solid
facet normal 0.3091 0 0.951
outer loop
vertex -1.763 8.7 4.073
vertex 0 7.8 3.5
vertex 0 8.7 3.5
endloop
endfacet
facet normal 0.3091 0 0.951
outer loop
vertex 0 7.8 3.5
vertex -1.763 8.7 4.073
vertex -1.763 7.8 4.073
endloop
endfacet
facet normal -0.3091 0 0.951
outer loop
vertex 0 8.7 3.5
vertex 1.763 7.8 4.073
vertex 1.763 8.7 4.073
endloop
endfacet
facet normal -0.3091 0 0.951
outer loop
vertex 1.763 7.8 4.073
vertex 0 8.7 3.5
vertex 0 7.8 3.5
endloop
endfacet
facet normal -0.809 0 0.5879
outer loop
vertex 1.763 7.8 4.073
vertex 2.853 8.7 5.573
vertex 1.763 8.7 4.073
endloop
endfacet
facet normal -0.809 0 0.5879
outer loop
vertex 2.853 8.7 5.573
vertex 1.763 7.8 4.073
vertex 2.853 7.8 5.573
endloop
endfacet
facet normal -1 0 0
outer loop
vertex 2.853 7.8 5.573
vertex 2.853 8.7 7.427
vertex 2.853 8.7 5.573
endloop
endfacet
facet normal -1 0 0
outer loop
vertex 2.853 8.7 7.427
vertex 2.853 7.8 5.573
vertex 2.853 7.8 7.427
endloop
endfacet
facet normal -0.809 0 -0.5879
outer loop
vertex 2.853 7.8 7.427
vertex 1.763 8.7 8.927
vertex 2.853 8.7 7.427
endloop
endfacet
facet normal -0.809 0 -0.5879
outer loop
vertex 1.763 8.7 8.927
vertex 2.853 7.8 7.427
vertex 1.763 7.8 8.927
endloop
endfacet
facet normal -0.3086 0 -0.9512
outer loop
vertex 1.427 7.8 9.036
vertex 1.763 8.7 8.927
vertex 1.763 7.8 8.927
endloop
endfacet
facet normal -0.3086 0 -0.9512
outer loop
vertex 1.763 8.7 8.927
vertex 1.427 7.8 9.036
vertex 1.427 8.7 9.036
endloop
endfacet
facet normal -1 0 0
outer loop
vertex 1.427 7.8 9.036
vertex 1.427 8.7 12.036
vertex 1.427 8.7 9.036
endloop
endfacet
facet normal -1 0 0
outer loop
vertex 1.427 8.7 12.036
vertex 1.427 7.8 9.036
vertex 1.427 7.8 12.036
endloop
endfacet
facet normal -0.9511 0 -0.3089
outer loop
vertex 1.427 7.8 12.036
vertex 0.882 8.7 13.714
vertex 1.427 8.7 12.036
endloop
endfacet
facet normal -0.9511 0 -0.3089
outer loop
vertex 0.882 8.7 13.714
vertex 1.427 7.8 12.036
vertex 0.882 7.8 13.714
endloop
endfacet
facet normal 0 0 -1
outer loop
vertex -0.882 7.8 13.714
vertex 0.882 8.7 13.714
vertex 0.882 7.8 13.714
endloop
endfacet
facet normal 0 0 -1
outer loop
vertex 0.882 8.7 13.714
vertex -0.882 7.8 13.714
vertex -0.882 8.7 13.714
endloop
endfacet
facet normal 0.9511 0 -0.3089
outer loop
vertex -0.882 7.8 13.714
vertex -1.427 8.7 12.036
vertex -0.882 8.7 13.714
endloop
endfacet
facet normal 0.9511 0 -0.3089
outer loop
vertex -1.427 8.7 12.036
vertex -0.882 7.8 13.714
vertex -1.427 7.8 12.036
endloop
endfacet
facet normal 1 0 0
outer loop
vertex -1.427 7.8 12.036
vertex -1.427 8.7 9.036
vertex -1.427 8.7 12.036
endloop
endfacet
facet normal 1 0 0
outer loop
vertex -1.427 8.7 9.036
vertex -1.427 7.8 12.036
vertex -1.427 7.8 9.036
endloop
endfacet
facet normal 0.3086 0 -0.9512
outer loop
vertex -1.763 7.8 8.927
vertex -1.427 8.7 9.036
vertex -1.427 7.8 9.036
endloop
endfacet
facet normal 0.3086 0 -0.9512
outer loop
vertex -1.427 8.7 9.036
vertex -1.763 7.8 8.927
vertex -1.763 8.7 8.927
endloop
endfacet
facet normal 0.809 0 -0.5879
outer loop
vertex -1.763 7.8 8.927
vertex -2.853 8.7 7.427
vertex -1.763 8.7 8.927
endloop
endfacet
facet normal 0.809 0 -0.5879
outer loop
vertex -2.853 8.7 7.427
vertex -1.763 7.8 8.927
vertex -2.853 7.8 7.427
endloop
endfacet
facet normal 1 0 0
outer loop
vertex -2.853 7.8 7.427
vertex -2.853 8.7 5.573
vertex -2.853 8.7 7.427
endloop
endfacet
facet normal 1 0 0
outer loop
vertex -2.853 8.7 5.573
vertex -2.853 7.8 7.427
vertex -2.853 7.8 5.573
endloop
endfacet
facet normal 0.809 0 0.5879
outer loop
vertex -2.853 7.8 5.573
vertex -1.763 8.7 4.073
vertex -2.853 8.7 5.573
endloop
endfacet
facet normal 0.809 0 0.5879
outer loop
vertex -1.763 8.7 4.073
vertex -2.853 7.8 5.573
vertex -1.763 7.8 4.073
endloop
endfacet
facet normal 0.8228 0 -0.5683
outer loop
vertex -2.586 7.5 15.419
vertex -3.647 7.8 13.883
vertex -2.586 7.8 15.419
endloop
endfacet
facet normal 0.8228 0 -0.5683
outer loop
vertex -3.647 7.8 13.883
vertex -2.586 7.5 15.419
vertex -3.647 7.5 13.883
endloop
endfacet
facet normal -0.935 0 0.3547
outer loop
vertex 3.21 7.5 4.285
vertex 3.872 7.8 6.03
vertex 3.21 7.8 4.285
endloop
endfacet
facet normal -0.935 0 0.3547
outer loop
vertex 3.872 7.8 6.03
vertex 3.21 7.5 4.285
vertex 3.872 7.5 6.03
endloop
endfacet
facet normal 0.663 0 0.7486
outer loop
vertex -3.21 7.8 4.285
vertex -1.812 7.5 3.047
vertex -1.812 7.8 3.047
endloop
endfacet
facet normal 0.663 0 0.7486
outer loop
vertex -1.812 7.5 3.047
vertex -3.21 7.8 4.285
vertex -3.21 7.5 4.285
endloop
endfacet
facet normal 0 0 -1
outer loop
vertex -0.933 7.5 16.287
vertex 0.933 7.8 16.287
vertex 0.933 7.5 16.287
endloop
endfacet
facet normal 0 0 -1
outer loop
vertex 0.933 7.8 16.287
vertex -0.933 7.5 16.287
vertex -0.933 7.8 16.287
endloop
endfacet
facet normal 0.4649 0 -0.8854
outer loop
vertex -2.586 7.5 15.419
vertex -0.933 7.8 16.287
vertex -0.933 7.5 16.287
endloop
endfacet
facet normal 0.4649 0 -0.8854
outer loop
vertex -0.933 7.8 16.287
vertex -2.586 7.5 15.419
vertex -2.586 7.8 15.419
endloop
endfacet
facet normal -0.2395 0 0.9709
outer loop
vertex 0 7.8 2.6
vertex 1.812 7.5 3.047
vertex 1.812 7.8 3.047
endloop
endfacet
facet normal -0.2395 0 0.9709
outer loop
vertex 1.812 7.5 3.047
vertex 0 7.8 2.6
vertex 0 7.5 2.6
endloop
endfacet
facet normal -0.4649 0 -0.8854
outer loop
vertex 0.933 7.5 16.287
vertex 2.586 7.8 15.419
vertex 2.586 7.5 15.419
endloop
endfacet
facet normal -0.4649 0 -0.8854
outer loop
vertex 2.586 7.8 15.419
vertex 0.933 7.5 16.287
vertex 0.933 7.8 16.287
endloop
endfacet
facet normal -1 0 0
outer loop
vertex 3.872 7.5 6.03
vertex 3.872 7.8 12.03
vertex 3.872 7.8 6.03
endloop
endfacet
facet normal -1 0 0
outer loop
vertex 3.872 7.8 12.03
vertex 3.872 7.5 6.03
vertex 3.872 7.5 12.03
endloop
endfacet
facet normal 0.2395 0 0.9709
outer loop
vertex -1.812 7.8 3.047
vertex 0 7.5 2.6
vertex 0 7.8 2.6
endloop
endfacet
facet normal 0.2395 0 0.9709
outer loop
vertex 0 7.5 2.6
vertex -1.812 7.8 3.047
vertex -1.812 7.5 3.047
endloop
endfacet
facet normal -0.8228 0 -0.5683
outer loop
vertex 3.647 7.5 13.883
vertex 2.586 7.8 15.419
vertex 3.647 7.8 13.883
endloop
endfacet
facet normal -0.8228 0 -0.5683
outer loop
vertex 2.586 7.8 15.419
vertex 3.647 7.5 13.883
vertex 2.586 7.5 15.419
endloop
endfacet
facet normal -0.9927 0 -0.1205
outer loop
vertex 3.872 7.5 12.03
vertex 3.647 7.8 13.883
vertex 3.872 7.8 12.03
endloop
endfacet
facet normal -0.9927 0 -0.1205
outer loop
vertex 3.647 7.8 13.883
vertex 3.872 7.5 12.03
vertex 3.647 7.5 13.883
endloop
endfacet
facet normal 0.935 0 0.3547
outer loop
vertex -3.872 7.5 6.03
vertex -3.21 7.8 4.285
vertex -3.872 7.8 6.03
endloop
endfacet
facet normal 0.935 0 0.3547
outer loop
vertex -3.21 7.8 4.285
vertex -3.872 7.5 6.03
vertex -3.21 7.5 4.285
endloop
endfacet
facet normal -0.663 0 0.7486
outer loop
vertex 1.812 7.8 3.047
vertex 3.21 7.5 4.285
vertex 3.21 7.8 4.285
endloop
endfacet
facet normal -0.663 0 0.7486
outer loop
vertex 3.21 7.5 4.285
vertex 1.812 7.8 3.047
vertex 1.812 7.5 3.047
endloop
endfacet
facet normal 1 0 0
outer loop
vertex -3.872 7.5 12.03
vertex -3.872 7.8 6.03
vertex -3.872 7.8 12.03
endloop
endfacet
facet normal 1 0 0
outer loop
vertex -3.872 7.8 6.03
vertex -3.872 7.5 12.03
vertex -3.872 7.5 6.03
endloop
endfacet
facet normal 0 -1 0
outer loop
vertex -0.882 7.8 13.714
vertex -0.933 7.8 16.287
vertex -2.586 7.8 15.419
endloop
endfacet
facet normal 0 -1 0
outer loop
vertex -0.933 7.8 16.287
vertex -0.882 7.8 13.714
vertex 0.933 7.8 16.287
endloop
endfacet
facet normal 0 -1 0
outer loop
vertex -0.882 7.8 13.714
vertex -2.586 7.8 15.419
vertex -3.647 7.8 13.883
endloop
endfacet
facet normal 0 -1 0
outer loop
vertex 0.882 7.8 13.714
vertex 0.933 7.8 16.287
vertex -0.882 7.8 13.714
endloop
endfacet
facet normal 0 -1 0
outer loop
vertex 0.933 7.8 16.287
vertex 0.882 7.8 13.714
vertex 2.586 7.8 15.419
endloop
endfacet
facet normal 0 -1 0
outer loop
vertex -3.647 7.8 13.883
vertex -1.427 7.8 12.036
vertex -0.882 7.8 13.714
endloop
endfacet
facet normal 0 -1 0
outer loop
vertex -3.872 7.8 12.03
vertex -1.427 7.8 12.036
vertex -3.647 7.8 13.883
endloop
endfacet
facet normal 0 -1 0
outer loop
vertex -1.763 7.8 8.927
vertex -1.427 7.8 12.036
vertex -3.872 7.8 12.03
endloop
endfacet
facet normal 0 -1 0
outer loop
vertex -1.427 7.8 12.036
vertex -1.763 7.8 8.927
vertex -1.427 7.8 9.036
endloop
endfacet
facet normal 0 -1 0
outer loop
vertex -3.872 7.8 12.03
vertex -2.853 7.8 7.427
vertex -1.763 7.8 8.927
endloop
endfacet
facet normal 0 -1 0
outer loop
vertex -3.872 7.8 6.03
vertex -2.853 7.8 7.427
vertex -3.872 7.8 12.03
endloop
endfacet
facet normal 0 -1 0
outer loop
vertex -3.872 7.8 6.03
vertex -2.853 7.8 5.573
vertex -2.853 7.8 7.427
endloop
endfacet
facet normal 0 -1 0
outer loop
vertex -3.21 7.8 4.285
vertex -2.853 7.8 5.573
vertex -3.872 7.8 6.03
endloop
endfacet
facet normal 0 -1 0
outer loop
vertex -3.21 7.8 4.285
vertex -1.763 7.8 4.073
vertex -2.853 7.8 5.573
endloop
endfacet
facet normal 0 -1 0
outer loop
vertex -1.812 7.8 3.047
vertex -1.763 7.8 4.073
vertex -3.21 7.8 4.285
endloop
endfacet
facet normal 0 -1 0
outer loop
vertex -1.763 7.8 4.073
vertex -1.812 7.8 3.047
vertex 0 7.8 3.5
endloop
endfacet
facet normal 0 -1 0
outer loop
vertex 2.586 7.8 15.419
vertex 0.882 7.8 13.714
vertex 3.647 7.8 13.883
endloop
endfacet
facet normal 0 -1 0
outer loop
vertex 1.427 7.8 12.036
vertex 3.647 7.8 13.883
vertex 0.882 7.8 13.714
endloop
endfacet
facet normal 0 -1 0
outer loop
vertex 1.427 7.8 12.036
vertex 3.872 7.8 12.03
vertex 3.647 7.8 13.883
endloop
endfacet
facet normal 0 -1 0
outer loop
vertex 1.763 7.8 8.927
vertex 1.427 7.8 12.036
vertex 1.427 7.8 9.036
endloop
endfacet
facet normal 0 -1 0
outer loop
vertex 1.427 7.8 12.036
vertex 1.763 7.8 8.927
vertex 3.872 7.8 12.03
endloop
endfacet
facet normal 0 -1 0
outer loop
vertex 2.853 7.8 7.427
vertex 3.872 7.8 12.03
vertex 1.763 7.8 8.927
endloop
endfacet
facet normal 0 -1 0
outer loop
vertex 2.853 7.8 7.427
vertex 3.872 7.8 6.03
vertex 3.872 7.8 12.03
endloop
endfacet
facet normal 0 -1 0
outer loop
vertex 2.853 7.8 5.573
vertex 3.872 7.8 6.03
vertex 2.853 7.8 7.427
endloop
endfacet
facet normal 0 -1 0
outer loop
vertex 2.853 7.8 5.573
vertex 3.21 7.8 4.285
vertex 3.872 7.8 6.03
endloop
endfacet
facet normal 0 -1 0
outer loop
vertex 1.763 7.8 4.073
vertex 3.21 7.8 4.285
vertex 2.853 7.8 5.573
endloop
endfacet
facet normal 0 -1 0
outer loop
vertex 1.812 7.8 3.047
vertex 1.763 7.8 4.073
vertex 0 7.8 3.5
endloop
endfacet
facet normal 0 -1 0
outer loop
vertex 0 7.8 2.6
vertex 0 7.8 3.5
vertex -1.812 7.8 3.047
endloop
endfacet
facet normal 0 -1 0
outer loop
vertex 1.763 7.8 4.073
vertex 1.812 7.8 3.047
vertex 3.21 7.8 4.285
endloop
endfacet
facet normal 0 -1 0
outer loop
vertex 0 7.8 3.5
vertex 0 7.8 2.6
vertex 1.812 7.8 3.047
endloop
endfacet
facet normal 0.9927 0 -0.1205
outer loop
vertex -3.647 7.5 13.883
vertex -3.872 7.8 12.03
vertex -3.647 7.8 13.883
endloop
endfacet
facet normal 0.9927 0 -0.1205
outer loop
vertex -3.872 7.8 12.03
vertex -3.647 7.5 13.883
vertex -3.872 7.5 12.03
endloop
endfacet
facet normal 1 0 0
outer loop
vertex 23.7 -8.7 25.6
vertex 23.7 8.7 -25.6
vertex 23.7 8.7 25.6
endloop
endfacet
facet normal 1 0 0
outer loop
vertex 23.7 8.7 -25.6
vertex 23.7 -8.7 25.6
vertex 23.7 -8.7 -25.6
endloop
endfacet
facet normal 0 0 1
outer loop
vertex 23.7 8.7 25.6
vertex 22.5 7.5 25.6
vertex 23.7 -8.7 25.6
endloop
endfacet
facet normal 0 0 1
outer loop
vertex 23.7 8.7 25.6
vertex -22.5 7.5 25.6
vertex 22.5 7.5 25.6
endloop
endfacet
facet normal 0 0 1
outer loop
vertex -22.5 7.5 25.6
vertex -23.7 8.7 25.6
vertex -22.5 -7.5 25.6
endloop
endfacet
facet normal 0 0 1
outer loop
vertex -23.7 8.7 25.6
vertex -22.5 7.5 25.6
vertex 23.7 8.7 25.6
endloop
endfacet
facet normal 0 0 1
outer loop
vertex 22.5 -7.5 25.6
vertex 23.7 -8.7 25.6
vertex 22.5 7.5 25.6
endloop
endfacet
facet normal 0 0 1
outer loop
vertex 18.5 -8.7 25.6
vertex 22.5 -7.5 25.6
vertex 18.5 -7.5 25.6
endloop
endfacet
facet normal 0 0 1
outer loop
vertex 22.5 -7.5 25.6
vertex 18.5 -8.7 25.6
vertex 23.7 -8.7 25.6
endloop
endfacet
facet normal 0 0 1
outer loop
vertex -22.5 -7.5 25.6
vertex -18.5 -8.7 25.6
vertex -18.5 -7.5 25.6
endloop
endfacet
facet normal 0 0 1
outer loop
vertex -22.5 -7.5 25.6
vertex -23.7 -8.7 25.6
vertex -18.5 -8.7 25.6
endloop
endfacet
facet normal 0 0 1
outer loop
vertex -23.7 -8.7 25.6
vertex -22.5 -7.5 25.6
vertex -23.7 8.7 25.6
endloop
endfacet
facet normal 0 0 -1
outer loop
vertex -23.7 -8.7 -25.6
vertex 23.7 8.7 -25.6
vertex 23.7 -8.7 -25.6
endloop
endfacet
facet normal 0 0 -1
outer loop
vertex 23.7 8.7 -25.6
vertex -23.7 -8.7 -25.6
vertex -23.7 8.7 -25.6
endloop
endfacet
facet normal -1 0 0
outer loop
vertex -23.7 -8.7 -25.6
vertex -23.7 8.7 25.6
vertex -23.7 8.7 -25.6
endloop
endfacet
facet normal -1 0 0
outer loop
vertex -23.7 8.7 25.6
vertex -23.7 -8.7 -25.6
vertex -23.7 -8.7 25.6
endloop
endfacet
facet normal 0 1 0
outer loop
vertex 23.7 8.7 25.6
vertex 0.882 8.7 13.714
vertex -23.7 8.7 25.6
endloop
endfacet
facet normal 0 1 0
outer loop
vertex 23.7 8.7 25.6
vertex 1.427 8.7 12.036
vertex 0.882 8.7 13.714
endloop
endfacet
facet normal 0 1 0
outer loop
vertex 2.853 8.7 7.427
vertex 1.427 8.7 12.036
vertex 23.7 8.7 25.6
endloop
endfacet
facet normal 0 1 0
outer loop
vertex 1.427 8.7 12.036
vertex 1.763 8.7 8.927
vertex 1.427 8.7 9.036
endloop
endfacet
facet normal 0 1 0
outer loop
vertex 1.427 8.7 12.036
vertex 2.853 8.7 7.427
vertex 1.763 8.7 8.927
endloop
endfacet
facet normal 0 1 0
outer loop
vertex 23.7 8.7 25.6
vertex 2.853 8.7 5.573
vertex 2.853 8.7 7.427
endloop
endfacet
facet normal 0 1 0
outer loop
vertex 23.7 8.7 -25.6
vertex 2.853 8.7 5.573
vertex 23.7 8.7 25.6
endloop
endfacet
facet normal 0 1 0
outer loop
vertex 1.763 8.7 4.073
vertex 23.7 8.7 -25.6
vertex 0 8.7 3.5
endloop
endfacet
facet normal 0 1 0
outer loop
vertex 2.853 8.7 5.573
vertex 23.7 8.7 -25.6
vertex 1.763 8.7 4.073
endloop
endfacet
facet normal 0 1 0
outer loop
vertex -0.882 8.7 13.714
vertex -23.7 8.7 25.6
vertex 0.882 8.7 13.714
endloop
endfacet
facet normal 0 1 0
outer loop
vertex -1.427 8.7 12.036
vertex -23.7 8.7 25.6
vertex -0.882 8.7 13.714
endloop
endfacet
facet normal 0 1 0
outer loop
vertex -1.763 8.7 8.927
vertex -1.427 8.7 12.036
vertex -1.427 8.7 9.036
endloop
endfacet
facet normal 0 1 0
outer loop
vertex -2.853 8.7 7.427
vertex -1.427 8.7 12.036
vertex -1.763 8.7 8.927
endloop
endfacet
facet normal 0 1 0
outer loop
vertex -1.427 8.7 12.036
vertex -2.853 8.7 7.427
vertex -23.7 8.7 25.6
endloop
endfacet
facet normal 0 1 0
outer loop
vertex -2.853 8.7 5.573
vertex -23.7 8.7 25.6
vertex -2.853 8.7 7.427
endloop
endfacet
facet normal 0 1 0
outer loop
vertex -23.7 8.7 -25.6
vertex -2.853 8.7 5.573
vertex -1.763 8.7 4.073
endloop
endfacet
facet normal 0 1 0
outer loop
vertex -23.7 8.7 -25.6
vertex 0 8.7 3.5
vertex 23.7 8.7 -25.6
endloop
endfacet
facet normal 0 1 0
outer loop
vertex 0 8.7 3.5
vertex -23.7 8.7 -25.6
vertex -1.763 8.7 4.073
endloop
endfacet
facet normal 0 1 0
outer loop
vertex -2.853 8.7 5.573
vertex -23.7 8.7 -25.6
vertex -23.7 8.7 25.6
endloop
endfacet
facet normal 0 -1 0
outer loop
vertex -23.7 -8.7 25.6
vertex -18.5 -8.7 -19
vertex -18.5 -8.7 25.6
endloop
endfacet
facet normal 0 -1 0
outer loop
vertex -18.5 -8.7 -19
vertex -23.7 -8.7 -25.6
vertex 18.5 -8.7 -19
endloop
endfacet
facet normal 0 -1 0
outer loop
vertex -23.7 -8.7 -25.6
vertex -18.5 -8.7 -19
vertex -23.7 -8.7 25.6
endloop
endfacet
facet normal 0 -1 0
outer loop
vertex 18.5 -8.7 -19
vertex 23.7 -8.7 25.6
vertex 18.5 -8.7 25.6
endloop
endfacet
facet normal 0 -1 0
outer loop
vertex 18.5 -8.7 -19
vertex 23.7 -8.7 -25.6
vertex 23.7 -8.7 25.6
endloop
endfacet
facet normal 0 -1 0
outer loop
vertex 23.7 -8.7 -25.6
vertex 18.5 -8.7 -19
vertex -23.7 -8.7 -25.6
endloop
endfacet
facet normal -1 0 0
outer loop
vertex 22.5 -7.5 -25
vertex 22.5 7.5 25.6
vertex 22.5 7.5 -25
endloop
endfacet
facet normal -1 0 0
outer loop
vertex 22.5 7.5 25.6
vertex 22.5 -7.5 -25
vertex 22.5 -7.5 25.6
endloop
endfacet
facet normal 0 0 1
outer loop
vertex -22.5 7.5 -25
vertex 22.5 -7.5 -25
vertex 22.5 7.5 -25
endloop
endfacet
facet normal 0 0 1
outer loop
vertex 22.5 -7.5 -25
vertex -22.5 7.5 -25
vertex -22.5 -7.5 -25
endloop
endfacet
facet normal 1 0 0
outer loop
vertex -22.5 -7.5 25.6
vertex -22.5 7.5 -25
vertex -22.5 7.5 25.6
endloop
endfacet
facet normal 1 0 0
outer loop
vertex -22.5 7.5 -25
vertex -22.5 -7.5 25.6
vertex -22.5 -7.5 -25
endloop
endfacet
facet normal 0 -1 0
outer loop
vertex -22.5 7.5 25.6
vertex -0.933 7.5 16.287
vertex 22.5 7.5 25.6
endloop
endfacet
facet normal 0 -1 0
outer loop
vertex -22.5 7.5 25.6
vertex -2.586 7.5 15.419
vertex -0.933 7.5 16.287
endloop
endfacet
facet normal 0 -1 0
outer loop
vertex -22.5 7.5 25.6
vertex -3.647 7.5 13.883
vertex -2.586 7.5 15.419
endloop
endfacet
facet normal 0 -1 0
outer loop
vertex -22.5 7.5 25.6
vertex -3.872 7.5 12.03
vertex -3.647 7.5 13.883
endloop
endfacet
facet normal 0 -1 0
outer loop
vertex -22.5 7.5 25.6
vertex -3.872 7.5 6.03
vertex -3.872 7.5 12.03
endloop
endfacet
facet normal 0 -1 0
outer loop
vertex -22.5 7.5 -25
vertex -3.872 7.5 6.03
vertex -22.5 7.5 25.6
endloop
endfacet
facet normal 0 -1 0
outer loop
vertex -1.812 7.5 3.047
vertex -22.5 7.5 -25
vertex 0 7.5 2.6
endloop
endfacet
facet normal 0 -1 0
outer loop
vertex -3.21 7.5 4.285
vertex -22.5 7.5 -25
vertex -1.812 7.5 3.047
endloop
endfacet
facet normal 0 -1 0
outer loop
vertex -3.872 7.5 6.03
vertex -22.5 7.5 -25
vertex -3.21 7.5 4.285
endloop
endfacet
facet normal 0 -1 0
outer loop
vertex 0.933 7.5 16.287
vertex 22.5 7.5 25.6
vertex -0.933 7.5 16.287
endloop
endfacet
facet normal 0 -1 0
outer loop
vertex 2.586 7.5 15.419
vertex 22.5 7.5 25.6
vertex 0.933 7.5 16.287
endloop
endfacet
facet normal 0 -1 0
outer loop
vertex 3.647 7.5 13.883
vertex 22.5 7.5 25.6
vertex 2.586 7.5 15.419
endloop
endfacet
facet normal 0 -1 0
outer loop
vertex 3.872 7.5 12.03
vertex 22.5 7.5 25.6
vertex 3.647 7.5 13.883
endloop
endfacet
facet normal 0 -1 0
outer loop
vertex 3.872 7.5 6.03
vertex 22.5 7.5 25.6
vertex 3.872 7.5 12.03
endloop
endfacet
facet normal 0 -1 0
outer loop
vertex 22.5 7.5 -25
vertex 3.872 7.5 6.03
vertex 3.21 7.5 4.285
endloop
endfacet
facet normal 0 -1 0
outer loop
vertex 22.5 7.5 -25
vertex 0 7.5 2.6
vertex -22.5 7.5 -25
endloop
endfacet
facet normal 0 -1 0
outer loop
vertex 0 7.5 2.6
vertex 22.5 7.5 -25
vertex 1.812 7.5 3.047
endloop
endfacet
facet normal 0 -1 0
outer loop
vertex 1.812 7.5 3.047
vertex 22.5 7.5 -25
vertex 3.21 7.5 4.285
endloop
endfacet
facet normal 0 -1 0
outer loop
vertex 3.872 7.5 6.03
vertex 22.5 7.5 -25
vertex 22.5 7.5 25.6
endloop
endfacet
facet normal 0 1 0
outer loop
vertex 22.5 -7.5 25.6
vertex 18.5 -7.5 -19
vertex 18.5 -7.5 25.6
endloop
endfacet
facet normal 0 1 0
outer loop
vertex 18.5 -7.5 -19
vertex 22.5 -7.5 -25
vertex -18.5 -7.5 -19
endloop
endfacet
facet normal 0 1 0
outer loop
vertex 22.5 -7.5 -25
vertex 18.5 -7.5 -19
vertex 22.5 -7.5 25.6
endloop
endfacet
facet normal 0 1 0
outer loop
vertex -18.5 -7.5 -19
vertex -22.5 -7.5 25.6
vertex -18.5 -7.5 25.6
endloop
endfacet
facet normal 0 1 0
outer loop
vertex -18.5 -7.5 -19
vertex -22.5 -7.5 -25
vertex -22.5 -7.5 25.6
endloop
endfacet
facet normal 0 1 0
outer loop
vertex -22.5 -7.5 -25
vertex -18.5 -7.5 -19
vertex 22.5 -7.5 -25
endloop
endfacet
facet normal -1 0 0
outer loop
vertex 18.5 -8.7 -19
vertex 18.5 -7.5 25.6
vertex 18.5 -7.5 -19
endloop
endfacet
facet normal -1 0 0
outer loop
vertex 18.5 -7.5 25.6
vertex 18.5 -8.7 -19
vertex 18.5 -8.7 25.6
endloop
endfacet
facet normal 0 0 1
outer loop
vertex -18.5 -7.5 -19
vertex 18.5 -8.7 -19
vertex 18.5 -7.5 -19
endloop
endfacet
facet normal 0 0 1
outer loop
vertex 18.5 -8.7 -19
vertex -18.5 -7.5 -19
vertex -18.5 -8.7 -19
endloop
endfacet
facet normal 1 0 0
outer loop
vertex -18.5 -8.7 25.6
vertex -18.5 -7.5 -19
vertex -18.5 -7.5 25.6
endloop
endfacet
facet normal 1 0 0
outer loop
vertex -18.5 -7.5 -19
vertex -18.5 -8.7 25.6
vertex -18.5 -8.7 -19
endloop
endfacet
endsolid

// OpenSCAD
length = 50;
width = 45;
depth = 15;
lip = 4;
thickness = 1.2;

module keyhole(SCREW_DIAMETER, SCREW_HEAD_DIAMETER, thickness) {
    union() {
        translate( [0,0,-0.01] )
            linear_extrude( thickness + 0.01) {
                hull(){
                    circle(SCREW_DIAMETER/2);
                    translate([SCREW_HEAD_DIAMETER,0]) circle(SCREW_DIAMETER/2);
                }
                
                translate([SCREW_HEAD_DIAMETER,0])
                    circle(SCREW_HEAD_DIAMETER/2);
            }
        
        translate( [0,0,thickness/2] )
            linear_extrude( thickness/2 +0.02)
                hull(){
                    circle( SCREW_HEAD_DIAMETER/2 + thickness/2 );
                    translate([SCREW_HEAD_DIAMETER,0]) circle( SCREW_HEAD_DIAMETER/2 + thickness/2);
                }
    }
}

difference() {
    cube([width+2*thickness, depth+2*thickness, length+thickness], center = true);
    translate([0, 0, thickness/2])
        cube([width, depth, length+thickness], center = true);
    translate([0,-depth/2+thickness,lip])
        cube([width-2*lip, depth, length-lip], center=true);
    translate([0, depth/2+thickness, length/4])
        rotate([90, 90, 0])
        keyhole(3, 6, thickness*1.5);
}
